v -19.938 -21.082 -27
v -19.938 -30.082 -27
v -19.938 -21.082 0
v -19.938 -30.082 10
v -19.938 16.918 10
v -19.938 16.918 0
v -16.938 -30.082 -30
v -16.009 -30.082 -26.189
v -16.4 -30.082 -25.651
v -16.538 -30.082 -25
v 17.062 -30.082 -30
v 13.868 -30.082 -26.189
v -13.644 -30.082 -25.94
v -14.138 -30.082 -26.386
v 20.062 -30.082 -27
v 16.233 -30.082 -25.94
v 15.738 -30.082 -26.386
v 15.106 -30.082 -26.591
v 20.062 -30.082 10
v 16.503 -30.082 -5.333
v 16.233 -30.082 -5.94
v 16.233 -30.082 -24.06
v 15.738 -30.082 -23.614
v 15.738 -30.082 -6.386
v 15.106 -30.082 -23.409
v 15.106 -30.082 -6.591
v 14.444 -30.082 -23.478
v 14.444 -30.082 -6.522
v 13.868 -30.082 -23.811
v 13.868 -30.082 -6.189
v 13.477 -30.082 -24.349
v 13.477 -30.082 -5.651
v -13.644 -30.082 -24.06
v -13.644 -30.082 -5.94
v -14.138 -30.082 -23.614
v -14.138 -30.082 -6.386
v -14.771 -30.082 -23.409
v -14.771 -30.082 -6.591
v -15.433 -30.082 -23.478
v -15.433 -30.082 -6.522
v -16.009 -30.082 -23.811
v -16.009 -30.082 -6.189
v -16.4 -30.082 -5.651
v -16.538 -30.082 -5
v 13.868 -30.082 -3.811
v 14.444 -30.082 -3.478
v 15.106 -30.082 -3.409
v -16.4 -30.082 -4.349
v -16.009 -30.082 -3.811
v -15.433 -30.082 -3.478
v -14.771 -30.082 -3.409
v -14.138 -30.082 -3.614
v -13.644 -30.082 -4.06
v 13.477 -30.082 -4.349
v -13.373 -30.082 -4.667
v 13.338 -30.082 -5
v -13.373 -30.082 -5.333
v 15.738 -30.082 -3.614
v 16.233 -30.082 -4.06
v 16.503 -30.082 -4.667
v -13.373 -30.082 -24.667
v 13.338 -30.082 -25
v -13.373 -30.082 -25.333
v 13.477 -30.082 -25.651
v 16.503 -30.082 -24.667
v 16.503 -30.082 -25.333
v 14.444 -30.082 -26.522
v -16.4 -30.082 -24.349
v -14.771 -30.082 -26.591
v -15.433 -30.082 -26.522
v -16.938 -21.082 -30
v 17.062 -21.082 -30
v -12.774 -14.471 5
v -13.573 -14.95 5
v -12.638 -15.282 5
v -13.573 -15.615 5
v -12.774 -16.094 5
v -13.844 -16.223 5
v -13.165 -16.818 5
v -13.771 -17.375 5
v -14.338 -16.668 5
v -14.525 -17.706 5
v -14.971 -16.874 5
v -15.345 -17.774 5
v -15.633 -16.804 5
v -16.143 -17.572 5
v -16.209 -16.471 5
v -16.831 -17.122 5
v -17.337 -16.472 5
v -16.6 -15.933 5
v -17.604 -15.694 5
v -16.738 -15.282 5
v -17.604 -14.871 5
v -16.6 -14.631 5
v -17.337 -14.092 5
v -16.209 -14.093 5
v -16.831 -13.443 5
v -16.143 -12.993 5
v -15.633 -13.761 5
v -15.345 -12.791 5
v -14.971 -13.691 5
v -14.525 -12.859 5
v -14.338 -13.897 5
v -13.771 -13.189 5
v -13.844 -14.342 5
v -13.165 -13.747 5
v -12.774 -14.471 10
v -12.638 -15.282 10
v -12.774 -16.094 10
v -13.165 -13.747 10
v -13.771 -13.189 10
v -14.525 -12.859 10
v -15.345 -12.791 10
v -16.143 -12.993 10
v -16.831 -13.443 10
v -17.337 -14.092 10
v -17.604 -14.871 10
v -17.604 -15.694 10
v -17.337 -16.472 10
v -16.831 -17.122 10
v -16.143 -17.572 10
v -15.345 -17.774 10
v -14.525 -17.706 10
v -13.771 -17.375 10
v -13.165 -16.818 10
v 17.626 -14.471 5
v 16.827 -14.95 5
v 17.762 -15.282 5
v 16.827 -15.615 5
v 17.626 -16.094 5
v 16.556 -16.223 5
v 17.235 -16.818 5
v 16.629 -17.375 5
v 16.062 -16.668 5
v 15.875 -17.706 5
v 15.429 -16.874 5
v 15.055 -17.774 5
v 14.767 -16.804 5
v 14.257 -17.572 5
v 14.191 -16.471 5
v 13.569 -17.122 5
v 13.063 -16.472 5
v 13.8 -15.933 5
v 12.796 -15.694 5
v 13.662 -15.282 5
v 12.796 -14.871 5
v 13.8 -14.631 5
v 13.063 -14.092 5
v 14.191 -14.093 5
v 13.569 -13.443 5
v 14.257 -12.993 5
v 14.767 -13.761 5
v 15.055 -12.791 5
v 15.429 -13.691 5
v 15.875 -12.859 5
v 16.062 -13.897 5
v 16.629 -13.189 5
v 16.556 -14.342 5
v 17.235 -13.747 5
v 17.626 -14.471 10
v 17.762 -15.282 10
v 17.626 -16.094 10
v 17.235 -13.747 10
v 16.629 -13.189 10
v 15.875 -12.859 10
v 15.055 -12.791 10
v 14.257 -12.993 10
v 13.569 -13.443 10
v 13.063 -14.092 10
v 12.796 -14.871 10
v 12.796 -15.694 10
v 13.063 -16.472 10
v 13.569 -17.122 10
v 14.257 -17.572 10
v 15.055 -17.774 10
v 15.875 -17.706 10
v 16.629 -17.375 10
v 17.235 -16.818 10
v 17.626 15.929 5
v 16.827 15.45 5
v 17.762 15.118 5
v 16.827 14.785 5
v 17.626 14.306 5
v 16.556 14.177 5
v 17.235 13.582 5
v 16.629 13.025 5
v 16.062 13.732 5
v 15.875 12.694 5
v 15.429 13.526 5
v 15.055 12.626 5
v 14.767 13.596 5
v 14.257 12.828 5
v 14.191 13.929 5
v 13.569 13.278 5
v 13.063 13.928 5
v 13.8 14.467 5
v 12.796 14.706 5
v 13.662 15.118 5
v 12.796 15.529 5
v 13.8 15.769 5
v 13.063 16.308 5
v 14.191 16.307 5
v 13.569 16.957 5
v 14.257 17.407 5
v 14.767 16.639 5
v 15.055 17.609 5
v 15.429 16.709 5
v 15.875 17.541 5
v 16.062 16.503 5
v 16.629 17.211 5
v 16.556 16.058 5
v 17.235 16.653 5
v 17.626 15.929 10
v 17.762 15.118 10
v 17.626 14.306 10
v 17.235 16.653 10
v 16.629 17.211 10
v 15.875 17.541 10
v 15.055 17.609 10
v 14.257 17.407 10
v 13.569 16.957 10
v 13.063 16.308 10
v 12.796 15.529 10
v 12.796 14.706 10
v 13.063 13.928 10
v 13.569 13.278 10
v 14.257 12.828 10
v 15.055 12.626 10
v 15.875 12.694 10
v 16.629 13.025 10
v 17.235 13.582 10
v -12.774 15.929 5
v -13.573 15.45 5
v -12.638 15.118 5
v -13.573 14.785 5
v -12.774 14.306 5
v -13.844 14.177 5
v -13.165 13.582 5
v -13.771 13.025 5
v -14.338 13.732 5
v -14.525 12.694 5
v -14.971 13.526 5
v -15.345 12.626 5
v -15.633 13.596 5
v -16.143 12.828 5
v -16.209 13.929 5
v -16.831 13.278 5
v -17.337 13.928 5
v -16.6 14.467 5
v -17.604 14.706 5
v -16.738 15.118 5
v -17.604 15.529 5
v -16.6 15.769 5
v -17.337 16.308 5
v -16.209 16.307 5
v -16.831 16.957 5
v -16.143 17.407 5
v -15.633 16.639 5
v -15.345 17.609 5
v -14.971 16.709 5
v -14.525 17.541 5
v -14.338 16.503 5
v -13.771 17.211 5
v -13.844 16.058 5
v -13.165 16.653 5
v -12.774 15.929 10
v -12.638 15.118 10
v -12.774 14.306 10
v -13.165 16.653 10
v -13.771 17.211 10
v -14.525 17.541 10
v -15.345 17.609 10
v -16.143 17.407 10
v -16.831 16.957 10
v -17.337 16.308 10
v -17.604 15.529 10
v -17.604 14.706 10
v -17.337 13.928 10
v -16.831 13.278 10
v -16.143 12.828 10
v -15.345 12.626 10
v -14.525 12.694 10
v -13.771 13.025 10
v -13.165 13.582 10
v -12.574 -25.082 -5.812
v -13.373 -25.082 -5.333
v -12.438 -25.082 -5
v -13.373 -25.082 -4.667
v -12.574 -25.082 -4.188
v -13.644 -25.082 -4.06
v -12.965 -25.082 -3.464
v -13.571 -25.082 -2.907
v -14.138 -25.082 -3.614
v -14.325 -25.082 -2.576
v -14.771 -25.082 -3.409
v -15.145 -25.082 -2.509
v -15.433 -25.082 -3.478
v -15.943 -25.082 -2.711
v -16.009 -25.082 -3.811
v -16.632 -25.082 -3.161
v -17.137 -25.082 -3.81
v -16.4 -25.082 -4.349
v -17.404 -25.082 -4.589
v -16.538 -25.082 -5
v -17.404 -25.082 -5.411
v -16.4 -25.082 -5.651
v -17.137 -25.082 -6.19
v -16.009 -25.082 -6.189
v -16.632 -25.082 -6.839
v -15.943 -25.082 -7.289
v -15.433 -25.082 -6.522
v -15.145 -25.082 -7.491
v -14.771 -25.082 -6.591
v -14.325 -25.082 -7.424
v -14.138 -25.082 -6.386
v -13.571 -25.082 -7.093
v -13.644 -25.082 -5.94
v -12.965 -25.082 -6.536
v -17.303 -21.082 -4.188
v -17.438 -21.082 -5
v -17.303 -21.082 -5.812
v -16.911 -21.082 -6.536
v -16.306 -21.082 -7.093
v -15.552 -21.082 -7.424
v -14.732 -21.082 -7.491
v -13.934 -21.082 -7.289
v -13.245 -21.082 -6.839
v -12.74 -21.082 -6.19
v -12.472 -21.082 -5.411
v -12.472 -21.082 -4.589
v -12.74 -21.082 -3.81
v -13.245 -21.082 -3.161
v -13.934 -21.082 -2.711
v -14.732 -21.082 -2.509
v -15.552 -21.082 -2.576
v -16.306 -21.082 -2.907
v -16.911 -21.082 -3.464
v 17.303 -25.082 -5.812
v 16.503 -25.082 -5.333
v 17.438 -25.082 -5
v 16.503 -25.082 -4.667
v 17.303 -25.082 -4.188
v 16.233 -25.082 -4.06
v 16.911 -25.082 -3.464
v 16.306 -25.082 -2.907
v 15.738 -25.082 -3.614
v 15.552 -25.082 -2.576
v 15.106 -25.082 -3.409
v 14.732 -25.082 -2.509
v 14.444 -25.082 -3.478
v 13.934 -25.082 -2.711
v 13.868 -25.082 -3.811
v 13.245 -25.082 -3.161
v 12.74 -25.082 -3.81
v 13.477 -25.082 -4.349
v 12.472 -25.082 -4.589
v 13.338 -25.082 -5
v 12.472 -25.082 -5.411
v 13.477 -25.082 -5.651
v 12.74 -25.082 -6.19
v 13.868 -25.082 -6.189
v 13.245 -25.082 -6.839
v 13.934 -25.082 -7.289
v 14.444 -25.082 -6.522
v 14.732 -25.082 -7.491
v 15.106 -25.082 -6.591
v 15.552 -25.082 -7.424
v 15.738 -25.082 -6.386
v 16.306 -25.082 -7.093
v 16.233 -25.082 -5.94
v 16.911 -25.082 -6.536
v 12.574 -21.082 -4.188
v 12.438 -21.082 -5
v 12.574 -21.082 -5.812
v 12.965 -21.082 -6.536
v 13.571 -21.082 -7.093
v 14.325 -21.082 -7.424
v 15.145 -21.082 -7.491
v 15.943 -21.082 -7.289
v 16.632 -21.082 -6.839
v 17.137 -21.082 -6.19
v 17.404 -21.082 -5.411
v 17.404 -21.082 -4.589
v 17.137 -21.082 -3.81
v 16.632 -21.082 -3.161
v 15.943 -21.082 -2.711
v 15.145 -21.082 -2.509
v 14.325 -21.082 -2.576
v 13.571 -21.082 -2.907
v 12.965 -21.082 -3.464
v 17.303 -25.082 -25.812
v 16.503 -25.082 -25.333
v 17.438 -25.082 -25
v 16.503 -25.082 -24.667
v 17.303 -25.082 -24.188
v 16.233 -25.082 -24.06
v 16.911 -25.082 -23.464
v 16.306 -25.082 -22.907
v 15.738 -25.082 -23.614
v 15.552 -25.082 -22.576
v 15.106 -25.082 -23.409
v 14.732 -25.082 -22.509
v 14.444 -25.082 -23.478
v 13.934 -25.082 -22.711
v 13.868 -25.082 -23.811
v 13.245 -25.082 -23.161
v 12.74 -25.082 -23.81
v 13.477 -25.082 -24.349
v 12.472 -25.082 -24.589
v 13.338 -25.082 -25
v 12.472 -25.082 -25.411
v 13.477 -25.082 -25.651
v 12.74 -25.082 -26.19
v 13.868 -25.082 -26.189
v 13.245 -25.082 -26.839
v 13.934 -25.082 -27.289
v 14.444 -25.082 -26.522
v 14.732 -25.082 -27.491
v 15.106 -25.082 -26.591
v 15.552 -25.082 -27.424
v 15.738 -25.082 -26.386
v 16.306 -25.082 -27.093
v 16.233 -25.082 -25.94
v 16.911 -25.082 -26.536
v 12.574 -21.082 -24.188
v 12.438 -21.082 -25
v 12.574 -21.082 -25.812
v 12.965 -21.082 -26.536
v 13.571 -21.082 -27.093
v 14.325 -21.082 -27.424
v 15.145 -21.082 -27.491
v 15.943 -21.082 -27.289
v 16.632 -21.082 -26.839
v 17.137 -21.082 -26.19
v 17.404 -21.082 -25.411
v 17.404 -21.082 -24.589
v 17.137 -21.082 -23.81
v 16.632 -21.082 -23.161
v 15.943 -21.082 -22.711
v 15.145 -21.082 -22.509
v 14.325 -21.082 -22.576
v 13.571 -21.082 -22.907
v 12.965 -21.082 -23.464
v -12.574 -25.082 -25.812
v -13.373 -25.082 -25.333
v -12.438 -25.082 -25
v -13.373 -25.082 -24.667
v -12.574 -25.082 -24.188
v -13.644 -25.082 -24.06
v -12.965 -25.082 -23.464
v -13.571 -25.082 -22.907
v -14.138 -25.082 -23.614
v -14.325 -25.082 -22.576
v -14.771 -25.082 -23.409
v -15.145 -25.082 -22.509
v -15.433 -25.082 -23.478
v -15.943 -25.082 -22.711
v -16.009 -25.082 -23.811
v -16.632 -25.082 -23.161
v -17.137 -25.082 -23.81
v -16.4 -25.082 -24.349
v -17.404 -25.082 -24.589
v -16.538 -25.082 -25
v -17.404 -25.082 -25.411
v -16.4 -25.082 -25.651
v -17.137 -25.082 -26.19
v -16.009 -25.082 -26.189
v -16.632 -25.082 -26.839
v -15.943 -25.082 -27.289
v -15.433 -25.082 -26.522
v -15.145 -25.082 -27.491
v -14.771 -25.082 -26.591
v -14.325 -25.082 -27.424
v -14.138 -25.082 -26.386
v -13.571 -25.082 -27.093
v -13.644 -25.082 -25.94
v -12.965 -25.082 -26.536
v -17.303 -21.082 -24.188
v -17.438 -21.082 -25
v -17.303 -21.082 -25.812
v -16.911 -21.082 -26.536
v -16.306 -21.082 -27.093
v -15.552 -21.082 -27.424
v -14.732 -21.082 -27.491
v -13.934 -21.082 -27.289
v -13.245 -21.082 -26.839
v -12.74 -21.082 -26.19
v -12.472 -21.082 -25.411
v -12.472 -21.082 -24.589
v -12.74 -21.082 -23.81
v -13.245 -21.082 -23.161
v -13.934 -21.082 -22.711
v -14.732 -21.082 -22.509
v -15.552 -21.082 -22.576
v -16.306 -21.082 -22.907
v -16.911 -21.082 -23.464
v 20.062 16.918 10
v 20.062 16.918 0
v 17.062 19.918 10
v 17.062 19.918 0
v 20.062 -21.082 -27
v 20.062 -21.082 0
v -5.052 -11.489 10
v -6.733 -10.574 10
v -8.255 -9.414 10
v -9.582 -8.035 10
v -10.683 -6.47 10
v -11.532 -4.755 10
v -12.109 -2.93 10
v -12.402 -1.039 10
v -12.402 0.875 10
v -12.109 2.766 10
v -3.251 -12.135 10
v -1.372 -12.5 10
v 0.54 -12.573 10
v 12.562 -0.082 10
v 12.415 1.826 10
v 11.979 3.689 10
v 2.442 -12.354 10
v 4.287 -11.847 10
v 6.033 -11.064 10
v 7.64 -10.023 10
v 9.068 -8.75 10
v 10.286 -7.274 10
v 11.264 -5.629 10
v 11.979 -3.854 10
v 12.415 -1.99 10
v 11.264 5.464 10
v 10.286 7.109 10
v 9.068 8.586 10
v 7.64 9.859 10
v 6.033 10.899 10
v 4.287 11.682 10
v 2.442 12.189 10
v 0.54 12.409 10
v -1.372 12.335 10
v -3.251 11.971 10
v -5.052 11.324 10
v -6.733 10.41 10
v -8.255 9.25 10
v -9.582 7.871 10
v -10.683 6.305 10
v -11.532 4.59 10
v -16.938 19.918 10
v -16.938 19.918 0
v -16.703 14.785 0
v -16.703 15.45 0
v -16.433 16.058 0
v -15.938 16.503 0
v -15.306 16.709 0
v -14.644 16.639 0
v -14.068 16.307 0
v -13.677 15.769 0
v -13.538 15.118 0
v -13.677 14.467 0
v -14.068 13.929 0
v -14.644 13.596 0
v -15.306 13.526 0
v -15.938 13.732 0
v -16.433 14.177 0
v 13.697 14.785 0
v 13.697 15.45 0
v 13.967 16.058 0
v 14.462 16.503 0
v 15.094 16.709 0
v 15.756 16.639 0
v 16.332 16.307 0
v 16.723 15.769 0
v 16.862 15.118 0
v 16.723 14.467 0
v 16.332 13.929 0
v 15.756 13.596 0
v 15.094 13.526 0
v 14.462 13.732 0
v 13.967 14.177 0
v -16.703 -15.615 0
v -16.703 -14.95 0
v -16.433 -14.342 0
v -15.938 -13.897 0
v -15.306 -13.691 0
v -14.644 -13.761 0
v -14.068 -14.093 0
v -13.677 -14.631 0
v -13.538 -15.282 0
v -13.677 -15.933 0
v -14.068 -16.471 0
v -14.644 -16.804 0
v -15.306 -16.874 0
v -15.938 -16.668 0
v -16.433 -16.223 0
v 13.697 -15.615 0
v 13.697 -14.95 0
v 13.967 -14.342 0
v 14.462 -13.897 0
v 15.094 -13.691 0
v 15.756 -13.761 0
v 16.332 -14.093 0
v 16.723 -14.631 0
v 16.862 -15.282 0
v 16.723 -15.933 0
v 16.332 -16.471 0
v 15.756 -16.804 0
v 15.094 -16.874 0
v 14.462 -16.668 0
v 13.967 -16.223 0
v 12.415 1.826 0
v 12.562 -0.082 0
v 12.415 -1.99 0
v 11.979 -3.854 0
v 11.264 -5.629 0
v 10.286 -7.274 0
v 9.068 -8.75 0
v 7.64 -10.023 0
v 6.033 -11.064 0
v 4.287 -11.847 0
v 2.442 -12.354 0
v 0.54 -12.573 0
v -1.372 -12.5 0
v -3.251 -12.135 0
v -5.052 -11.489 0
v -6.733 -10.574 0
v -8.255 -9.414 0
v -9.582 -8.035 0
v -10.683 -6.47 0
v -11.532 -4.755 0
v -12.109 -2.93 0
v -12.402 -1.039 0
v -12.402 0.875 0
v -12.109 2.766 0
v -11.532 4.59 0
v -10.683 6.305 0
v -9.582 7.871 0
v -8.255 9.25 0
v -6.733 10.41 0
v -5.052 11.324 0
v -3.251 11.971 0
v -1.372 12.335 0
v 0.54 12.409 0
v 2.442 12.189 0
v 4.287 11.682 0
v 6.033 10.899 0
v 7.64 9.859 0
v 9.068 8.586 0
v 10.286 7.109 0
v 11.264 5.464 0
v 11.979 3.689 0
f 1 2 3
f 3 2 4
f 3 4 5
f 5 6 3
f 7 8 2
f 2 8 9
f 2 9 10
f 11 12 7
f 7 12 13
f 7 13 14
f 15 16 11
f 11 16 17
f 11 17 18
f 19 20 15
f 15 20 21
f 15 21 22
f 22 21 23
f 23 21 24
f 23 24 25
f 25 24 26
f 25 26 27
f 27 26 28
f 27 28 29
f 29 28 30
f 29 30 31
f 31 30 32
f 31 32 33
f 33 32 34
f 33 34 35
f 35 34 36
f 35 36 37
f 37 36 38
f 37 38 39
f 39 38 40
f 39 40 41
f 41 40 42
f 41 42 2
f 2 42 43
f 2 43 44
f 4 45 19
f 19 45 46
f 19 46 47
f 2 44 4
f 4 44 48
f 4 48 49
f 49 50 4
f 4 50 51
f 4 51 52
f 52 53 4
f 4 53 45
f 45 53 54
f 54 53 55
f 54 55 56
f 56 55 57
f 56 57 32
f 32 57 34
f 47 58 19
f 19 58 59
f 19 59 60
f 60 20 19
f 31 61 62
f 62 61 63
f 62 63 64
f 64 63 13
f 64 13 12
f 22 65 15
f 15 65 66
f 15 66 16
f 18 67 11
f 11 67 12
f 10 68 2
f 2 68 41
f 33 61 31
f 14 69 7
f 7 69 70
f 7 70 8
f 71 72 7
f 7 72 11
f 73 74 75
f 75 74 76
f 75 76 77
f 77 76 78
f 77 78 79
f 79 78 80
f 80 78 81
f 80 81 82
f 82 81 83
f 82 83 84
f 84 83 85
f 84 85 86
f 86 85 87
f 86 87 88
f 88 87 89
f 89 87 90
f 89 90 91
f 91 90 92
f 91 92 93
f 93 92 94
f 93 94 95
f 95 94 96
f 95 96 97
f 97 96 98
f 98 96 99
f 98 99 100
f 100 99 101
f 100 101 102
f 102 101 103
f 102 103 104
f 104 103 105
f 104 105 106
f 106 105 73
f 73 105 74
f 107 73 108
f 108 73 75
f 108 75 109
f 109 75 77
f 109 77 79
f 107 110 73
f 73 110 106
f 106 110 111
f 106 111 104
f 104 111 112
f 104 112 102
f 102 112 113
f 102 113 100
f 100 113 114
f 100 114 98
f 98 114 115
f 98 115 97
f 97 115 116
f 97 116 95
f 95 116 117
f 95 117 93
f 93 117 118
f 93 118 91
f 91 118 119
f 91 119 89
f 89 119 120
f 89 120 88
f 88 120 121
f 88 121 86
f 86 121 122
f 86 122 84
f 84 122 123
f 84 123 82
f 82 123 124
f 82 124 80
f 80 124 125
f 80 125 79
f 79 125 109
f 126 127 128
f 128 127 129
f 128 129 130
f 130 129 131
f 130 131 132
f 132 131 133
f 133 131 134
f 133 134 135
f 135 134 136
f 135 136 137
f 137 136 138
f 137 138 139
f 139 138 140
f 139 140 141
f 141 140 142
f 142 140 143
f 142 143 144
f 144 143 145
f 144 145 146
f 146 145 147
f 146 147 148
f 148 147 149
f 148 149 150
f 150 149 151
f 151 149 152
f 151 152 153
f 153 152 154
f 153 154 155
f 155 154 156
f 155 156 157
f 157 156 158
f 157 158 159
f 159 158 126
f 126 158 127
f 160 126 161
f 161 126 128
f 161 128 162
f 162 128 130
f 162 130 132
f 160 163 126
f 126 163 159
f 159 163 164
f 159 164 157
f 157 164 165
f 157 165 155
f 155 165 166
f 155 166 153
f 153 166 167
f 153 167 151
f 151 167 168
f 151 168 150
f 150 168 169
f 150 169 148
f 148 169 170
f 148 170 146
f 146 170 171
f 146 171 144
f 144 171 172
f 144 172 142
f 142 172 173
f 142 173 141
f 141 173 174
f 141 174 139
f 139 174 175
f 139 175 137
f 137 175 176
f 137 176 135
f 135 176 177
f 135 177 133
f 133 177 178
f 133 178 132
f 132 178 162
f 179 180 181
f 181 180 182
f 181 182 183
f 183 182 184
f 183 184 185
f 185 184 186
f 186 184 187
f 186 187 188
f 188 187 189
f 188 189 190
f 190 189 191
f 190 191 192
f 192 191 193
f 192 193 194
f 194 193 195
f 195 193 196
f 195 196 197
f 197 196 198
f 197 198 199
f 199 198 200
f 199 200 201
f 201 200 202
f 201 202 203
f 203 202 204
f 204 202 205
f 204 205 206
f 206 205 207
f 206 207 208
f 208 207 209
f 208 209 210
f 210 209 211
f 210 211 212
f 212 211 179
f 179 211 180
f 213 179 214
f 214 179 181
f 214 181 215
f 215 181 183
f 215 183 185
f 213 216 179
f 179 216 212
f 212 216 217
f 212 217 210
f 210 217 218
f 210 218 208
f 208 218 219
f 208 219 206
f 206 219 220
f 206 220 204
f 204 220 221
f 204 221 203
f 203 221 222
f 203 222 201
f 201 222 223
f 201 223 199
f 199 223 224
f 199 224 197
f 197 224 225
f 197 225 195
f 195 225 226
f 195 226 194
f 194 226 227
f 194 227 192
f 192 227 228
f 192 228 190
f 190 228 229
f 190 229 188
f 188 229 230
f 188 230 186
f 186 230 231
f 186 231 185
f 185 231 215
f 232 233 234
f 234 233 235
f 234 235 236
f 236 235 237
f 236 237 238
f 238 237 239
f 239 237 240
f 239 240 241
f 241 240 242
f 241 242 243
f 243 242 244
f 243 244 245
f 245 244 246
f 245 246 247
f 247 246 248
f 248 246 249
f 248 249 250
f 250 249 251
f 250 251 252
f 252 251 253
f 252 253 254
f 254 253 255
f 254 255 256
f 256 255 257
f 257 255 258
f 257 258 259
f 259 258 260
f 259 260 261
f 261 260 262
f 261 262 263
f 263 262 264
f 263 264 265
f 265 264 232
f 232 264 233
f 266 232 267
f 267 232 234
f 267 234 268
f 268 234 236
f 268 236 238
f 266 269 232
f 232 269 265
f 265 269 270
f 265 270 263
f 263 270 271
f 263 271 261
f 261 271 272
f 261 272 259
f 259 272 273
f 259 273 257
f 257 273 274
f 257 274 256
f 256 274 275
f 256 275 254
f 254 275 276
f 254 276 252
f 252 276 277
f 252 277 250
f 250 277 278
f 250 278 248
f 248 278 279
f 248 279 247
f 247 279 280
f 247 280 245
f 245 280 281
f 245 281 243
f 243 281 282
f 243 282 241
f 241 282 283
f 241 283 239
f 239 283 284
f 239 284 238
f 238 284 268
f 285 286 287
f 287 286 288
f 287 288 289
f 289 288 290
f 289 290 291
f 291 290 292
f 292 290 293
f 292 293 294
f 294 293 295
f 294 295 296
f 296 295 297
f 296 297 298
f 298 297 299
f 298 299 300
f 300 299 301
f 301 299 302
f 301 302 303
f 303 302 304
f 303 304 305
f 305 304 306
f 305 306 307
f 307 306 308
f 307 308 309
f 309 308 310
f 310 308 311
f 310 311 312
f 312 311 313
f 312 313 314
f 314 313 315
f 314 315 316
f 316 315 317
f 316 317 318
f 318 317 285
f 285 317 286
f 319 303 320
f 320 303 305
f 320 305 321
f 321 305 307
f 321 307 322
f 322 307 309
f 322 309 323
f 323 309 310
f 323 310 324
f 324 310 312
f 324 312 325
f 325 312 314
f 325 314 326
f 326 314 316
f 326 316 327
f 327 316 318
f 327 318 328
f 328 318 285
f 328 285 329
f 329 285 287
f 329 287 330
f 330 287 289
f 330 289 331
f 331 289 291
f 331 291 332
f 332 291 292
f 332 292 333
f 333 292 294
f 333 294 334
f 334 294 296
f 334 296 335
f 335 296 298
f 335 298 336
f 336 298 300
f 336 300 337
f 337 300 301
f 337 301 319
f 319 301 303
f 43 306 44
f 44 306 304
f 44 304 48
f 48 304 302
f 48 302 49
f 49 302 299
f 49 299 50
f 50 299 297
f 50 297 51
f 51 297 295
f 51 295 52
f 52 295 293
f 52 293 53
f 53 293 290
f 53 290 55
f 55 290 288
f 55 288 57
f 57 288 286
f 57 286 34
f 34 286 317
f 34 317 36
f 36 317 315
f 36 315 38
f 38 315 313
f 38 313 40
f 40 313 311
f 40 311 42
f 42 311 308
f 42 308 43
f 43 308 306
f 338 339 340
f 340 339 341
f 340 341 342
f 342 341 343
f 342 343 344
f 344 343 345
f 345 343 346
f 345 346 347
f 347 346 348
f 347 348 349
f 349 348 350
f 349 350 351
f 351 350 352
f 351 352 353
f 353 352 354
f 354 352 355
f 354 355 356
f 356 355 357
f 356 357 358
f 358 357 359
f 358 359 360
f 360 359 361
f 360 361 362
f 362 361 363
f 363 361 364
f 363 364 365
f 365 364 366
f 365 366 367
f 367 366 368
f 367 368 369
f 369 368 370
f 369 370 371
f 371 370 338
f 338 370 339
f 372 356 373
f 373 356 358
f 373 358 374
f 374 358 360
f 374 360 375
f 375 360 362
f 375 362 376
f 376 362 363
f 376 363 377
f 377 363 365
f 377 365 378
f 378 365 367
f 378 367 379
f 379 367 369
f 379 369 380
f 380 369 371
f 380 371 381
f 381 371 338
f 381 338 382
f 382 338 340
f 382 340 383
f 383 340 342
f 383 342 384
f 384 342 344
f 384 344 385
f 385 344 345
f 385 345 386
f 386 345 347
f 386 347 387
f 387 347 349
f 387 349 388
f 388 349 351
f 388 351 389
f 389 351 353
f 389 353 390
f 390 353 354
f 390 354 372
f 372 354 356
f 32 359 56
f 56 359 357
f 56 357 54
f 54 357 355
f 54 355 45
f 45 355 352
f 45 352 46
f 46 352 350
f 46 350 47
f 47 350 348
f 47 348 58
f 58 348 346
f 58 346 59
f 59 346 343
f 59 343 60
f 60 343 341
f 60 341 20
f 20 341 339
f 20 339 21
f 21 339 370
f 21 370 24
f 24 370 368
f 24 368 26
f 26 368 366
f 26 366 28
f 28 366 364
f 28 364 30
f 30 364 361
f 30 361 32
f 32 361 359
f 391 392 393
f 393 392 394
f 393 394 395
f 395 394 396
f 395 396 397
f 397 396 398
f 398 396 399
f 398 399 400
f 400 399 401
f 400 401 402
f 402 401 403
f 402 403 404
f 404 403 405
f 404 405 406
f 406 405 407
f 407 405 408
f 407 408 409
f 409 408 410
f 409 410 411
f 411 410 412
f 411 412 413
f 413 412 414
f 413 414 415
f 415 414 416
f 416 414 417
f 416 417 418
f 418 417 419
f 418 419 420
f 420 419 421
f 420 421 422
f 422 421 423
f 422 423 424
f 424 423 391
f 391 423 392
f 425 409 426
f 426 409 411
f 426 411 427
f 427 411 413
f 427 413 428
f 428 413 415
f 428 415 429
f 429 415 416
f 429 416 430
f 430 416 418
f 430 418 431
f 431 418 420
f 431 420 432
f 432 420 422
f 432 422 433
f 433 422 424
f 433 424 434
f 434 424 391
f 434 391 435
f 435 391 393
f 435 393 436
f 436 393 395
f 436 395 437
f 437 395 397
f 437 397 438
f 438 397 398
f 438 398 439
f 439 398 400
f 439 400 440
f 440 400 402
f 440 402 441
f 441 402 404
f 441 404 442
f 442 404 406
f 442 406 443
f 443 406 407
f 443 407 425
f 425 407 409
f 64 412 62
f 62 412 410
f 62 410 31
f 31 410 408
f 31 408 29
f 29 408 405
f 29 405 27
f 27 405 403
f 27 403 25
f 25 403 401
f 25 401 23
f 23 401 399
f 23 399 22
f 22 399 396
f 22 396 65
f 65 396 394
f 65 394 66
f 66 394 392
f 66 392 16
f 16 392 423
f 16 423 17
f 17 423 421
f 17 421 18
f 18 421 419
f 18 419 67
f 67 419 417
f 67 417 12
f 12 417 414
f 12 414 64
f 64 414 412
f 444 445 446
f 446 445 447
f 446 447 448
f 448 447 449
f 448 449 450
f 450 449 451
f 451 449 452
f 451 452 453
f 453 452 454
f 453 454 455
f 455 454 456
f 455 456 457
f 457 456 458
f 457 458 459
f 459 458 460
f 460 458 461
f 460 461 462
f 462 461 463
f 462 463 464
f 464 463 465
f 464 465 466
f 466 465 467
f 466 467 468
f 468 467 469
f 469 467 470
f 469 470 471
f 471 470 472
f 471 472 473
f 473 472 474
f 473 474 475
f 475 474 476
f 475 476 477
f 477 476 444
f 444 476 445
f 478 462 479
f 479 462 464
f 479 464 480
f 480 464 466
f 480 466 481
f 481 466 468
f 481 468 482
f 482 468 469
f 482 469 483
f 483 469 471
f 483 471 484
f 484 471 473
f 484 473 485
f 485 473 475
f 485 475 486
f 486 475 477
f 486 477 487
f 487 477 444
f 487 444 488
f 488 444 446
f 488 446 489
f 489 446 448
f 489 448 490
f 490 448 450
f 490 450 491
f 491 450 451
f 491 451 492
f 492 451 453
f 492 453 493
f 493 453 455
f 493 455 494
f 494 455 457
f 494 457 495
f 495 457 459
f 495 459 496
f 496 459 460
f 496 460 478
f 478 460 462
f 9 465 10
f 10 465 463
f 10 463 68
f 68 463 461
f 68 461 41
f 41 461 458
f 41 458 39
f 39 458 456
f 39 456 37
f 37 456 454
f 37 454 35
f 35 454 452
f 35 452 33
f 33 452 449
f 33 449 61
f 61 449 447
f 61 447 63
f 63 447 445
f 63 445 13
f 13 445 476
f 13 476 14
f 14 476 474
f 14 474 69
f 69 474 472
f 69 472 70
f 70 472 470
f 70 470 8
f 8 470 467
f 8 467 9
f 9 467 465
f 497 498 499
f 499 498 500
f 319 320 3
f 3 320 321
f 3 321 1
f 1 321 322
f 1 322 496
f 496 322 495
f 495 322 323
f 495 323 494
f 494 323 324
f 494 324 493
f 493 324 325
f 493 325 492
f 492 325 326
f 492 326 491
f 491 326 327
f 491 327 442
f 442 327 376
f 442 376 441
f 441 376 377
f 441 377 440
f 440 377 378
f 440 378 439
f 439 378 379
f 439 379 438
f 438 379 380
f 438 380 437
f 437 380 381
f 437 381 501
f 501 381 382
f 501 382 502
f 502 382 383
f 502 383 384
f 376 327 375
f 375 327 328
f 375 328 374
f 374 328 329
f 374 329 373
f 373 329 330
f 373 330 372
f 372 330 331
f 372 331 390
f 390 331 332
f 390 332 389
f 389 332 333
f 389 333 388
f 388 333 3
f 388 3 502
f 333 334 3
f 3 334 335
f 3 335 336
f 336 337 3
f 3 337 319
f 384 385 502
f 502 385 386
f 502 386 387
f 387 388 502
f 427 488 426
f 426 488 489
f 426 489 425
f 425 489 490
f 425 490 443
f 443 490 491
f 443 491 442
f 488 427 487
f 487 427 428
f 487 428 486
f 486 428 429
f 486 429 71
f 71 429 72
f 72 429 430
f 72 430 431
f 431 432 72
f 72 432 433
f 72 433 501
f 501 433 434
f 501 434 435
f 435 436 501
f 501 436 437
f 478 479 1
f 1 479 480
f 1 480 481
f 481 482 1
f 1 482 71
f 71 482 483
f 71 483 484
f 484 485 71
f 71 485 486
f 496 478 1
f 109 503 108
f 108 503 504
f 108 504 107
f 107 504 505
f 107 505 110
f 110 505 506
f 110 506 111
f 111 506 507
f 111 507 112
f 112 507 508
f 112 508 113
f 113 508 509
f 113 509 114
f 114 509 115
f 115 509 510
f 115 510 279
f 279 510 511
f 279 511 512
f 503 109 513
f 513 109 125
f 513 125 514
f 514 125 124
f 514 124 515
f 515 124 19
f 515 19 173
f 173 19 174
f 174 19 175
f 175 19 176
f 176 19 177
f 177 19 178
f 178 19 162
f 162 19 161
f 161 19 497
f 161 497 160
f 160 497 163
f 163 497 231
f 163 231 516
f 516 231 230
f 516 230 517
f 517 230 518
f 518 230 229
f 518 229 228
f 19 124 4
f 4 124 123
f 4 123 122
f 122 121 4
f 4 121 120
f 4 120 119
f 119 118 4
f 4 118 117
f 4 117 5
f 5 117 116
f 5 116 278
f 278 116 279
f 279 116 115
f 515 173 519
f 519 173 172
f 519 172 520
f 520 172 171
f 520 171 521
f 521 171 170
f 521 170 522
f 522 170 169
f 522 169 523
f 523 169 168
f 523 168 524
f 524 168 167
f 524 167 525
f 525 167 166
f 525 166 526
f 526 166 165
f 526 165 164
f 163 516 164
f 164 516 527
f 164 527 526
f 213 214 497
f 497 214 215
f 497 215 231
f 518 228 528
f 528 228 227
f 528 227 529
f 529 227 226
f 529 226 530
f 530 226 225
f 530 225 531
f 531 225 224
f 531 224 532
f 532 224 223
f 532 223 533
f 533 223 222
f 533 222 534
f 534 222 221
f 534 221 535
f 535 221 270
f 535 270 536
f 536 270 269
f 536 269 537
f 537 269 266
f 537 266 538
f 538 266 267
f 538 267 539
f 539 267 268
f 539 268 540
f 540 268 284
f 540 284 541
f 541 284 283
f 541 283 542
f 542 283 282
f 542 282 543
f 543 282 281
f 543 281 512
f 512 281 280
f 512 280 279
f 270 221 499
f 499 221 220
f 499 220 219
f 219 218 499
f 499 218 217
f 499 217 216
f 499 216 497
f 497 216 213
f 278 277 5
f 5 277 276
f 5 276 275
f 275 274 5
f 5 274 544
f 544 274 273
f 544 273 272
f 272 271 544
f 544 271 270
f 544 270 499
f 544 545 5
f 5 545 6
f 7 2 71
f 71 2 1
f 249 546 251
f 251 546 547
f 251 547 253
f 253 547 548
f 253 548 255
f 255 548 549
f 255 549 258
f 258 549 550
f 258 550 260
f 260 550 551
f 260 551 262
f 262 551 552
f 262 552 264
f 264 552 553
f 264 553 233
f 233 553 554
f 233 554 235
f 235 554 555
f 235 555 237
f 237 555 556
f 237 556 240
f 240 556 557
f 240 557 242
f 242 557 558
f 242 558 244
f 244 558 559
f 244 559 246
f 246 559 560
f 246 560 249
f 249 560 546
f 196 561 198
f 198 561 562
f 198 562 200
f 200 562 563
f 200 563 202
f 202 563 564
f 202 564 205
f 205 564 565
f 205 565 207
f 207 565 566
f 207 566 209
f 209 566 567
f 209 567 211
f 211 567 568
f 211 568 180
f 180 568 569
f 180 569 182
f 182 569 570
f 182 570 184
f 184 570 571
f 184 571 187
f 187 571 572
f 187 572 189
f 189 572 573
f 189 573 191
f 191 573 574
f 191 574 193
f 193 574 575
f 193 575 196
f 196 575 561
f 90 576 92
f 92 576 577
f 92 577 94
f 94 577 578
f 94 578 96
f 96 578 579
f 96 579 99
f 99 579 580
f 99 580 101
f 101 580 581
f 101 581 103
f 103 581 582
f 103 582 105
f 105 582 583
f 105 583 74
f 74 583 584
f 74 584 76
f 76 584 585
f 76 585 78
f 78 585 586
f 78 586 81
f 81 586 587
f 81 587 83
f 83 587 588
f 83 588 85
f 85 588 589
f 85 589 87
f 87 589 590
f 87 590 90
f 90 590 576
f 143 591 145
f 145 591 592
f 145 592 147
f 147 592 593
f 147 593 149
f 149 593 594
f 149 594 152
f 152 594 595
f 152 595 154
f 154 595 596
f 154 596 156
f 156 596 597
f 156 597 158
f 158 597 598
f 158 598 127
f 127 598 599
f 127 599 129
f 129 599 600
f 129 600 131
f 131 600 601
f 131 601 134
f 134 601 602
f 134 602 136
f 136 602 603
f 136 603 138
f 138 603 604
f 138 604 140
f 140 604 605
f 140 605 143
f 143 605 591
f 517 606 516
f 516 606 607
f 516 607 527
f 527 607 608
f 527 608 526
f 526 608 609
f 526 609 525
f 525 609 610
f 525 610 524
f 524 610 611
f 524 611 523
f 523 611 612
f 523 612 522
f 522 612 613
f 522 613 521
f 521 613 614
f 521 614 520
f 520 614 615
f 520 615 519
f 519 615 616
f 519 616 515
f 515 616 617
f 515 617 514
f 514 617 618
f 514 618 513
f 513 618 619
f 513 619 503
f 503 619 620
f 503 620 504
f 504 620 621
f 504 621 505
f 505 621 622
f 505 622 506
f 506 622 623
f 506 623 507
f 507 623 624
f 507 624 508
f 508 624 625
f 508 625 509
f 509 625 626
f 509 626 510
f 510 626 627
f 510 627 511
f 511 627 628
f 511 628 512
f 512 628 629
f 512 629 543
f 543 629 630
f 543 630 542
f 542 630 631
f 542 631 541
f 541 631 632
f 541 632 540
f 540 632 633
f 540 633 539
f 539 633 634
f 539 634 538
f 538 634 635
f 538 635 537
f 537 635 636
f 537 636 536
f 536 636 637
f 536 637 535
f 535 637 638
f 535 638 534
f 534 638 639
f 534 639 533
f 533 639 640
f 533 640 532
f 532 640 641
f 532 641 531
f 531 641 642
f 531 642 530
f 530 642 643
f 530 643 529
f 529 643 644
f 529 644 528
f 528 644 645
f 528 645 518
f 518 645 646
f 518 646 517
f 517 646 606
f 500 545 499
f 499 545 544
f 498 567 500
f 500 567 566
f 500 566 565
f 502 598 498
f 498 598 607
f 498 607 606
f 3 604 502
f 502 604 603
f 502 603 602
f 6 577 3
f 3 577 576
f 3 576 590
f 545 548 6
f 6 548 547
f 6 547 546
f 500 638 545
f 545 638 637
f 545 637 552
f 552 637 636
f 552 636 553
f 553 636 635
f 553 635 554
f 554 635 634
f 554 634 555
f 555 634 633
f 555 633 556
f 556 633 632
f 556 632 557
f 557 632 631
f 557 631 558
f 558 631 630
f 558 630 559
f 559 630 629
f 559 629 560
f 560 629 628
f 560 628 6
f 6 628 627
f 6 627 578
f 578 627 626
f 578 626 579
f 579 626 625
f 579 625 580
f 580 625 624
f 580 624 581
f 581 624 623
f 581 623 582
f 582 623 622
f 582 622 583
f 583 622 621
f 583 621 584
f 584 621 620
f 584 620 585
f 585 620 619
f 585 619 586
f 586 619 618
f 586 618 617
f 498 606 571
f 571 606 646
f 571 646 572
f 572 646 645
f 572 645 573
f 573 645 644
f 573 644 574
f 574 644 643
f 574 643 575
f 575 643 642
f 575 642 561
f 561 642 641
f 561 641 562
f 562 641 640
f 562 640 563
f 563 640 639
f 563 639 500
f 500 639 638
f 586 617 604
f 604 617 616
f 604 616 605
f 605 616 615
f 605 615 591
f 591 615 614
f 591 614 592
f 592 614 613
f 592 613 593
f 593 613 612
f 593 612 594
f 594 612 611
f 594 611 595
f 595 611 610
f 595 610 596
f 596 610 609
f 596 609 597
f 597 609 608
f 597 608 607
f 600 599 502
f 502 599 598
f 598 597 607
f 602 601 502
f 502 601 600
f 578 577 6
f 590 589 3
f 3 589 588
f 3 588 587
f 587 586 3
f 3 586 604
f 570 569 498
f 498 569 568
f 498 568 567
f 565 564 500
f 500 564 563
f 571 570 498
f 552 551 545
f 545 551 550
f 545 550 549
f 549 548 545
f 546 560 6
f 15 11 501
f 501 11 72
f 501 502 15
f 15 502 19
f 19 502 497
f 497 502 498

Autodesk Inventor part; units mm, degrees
ref_plane "YZ Plane" through (0, 0, 0) normal (1, 0, 0) x (0, 1, 0)
ref_plane "XZ Plane" through (0, 0, 0) normal (0, 1, 0) x (-1, 0, 0)
ref_plane "XY Plane" through (0, 0, 0) normal (0, 0, 1) x (1, 0, 0)
sketch "Sketch1" plane through (0, 0, 0) normal (0, 0, 1) x (1, 0, 0)
  line L0 (20.0617, 19.9177) -> (20.0617, -20.0823)
  line L1 (20.0617, -20.0823) -> (-19.9383, -20.0823)
  line L2 (-19.9383, -20.0823) -> (-19.9383, 19.9177)
  line L3 (20.0617, 19.9177) -> (-19.9383, 19.9177)
  line L4 (-19.9383, 29.9177) -> (-19.9383, -30.0823)
  line L5 (15.2617, 19.9177) -> (15.2617, 15.1177)
  line L6 (15.2617, 19.9177) -> (20.0617, 19.9177) construction
  circle A0 centre (15.2617, 15.1177) radius 1.6
  line L7 (-19.9383, -0.0823) -> (20.0617, -0.0823)
  line L8 (0.0617, -20.0823) -> (0.0617, 19.9177)
  circle A1 centre (15.2617, -15.2823) radius 1.6
  circle A2 centre (-15.1383, -15.2823) radius 1.6
  circle A3 centre (-15.1383, 15.1177) radius 1.6
  arc A4 (10.0617, 7.4177) -> (10.0617, -7.5823) centre (0.0617, -0.0823) ccw
  line L9 (-12.4383, -0.0823) -> (2.0617, -0.0823)
  circle A5 centre (0.0617, -0.0823) radius 12.5
  point P0 (0, 0)
  dimension "d0" = 40
  dimension "d1" = 40
  dimension "d2" = 4.8
  dimension "d3" = 90
  dimension "d4" = 4.8
  dimension "d5" = 3.2
  dimension "d6" = 25
  dimension "d7" = 20
  dimension "d8" = 4.8
  dimension "d9" = 3.2
  dimension "d10" = 25
  dimension "d11" = 40
  dimension "d12" = 40
extrude "Extrusion1" add sketch "Sketch1" along normal blind 10 contours L0 L7 A5 A4 L8 L3 | L0 L1 L8 A4 A5 L7 | L8 A4 L7 L2 L3 | L1 L2 L7 A4 L8
sketch "Sketch2" plane through (-19.9383, -20.0823, 0) normal (0, -1, 0) x (1, 0, 0)
  line L0 (40, 0) -> (40, 10) projected
  line L1 (40, 10) -> (0, 10)
  line L2 (0, 10) -> (0, -30)
  line L3 (0, -30) -> (40, -30)
  line L4 (40, -30) -> (40, 10)
  point P0 (19.9383, 0)
  dimension "d15" = 40
  dimension "d21" = 40
extrude "Extrusion2" add sketch "Sketch2" along normal blind 10
chamfer "Chamfer1" distance 3 angle 45 2 edges at (-19.9383, 19.9177, 5) (20.0617, 19.9177, 5)
sketch "Sketch3" plane through (-19.9383, -20.0823, 0) normal (0, 1, 0) x (1, 0, 0)
  line L0 (0, 0) -> (0, 30) projected
  line L1 (0, 0) -> (5, 0)
  line L2 (5, 0) -> (5, 5)
  line L3 (5, 5) -> (0, 5)
  line L4 (0, 5) -> (0, 0)
  circle A0 centre (5, 5) radius 1.6
  line L5 (19.9383, 0) -> (19.9383, 30)
  line L6 (0, 15) -> (41.8735, 15)
  circle A1 centre (5, 25) radius 1.6
  circle A2 centre (34.8766, 5) radius 1.6
  circle A3 centre (34.8766, 25) radius 1.6
  dimension "d22" = 5
  dimension "d23" = 5
  dimension "d24" = 3.2
hole "Hole1" at (-14.9383, -20.0823, -25) at (14.9383, -20.0823, -25) at (14.9383, -20.0823, -5) at (-14.9383, -20.0823, -5) direction (0, -1, 0) diameter 3.2 end through all counterbore diameter 5 counterbore depth 5
sketch "Sketch4" plane through (0, 0, 10) normal (0, 0, 1) x (1, 0, 0)
  circle A0 centre (-15.1383, 15.1177) radius 1.6 projected
  line L0 (0, 0) -> (-15.1383, 0)
  line L1 (-15.1383, 0) -> (-15.1383, 15.1177)
  line L2 (-15.1383, 15.1177) -> (0, 15.1177)
  line L3 (0, 15.1177) -> (0, 0)
  circle A1 centre (15.2617, -15.2823) radius 1.6 projected
  line L4 (-15.1383, 15.1177) -> (15.2617, 15.1177)
  line L5 (15.2617, 15.1177) -> (15.2617, -15.2823)
  line L6 (15.2617, -15.2823) -> (-15.1383, -15.2823)
  line L7 (-15.1383, -15.2823) -> (-15.1383, 15.1177)
  circle A2 centre (-15.1383, 15.1177) radius 1.6
  circle A3 centre (15.2617, 15.1177) radius 1.6 projected
  circle A4 centre (15.2617, 15.1177) radius 1.6
  circle A5 centre (15.2617, -15.2823) radius 1.6
  circle A6 centre (-15.1383, -15.2823) radius 1.6
hole "Hole2" at (-15.1383, 15.1177, 10) at (15.2617, 15.1177, 10) at (15.2617, -15.2823, 10) at (-15.1383, -15.2823, 10) direction (0, 0, -1) diameter 3.2 end through all counterbore diameter 5 counterbore depth 5
sketch "Sketch5" plane through (-19.9383, -30.0823, 0) normal (0, -1, 0) x (1, 0, 0)
  circle A0 centre (5, -25) radius 1.6 projected
  circle A1 centre (34.8766, -25) radius 1.6 projected
  circle A2 centre (34.8766, -5) radius 1.6 projected
  point P0 (19.9383, 0)
  dimension "d39" = 26.6766
  dimension "d40" = 29.8766
  dimension "d41" = 20
sketch "Sketch6" plane through (-19.9383, -20.0823, 0) normal (0, 1, 0) x (1, 0, 0)
  line L0 (0, 0) -> (40, 0) projected
  line L1 (0, 30) -> (40, 30) projected
  line L2 (0, 0) -> (40, 0)
  line L3 (40, 0) -> (40, 30)
  line L4 (40, 30) -> (0, 30)
  line L5 (0, 30) -> (0, 0)
  point P0 (19.9383, 0)
extrude "Extrusion3" cut sketch "Sketch6" against normal blind 1
chamfer "Chamfer2" distance 3 angle 45 2 edges at (20.0617, -25.5823, -30) (-19.9383, -25.5823, -30)
properties part number "MotorMount"
